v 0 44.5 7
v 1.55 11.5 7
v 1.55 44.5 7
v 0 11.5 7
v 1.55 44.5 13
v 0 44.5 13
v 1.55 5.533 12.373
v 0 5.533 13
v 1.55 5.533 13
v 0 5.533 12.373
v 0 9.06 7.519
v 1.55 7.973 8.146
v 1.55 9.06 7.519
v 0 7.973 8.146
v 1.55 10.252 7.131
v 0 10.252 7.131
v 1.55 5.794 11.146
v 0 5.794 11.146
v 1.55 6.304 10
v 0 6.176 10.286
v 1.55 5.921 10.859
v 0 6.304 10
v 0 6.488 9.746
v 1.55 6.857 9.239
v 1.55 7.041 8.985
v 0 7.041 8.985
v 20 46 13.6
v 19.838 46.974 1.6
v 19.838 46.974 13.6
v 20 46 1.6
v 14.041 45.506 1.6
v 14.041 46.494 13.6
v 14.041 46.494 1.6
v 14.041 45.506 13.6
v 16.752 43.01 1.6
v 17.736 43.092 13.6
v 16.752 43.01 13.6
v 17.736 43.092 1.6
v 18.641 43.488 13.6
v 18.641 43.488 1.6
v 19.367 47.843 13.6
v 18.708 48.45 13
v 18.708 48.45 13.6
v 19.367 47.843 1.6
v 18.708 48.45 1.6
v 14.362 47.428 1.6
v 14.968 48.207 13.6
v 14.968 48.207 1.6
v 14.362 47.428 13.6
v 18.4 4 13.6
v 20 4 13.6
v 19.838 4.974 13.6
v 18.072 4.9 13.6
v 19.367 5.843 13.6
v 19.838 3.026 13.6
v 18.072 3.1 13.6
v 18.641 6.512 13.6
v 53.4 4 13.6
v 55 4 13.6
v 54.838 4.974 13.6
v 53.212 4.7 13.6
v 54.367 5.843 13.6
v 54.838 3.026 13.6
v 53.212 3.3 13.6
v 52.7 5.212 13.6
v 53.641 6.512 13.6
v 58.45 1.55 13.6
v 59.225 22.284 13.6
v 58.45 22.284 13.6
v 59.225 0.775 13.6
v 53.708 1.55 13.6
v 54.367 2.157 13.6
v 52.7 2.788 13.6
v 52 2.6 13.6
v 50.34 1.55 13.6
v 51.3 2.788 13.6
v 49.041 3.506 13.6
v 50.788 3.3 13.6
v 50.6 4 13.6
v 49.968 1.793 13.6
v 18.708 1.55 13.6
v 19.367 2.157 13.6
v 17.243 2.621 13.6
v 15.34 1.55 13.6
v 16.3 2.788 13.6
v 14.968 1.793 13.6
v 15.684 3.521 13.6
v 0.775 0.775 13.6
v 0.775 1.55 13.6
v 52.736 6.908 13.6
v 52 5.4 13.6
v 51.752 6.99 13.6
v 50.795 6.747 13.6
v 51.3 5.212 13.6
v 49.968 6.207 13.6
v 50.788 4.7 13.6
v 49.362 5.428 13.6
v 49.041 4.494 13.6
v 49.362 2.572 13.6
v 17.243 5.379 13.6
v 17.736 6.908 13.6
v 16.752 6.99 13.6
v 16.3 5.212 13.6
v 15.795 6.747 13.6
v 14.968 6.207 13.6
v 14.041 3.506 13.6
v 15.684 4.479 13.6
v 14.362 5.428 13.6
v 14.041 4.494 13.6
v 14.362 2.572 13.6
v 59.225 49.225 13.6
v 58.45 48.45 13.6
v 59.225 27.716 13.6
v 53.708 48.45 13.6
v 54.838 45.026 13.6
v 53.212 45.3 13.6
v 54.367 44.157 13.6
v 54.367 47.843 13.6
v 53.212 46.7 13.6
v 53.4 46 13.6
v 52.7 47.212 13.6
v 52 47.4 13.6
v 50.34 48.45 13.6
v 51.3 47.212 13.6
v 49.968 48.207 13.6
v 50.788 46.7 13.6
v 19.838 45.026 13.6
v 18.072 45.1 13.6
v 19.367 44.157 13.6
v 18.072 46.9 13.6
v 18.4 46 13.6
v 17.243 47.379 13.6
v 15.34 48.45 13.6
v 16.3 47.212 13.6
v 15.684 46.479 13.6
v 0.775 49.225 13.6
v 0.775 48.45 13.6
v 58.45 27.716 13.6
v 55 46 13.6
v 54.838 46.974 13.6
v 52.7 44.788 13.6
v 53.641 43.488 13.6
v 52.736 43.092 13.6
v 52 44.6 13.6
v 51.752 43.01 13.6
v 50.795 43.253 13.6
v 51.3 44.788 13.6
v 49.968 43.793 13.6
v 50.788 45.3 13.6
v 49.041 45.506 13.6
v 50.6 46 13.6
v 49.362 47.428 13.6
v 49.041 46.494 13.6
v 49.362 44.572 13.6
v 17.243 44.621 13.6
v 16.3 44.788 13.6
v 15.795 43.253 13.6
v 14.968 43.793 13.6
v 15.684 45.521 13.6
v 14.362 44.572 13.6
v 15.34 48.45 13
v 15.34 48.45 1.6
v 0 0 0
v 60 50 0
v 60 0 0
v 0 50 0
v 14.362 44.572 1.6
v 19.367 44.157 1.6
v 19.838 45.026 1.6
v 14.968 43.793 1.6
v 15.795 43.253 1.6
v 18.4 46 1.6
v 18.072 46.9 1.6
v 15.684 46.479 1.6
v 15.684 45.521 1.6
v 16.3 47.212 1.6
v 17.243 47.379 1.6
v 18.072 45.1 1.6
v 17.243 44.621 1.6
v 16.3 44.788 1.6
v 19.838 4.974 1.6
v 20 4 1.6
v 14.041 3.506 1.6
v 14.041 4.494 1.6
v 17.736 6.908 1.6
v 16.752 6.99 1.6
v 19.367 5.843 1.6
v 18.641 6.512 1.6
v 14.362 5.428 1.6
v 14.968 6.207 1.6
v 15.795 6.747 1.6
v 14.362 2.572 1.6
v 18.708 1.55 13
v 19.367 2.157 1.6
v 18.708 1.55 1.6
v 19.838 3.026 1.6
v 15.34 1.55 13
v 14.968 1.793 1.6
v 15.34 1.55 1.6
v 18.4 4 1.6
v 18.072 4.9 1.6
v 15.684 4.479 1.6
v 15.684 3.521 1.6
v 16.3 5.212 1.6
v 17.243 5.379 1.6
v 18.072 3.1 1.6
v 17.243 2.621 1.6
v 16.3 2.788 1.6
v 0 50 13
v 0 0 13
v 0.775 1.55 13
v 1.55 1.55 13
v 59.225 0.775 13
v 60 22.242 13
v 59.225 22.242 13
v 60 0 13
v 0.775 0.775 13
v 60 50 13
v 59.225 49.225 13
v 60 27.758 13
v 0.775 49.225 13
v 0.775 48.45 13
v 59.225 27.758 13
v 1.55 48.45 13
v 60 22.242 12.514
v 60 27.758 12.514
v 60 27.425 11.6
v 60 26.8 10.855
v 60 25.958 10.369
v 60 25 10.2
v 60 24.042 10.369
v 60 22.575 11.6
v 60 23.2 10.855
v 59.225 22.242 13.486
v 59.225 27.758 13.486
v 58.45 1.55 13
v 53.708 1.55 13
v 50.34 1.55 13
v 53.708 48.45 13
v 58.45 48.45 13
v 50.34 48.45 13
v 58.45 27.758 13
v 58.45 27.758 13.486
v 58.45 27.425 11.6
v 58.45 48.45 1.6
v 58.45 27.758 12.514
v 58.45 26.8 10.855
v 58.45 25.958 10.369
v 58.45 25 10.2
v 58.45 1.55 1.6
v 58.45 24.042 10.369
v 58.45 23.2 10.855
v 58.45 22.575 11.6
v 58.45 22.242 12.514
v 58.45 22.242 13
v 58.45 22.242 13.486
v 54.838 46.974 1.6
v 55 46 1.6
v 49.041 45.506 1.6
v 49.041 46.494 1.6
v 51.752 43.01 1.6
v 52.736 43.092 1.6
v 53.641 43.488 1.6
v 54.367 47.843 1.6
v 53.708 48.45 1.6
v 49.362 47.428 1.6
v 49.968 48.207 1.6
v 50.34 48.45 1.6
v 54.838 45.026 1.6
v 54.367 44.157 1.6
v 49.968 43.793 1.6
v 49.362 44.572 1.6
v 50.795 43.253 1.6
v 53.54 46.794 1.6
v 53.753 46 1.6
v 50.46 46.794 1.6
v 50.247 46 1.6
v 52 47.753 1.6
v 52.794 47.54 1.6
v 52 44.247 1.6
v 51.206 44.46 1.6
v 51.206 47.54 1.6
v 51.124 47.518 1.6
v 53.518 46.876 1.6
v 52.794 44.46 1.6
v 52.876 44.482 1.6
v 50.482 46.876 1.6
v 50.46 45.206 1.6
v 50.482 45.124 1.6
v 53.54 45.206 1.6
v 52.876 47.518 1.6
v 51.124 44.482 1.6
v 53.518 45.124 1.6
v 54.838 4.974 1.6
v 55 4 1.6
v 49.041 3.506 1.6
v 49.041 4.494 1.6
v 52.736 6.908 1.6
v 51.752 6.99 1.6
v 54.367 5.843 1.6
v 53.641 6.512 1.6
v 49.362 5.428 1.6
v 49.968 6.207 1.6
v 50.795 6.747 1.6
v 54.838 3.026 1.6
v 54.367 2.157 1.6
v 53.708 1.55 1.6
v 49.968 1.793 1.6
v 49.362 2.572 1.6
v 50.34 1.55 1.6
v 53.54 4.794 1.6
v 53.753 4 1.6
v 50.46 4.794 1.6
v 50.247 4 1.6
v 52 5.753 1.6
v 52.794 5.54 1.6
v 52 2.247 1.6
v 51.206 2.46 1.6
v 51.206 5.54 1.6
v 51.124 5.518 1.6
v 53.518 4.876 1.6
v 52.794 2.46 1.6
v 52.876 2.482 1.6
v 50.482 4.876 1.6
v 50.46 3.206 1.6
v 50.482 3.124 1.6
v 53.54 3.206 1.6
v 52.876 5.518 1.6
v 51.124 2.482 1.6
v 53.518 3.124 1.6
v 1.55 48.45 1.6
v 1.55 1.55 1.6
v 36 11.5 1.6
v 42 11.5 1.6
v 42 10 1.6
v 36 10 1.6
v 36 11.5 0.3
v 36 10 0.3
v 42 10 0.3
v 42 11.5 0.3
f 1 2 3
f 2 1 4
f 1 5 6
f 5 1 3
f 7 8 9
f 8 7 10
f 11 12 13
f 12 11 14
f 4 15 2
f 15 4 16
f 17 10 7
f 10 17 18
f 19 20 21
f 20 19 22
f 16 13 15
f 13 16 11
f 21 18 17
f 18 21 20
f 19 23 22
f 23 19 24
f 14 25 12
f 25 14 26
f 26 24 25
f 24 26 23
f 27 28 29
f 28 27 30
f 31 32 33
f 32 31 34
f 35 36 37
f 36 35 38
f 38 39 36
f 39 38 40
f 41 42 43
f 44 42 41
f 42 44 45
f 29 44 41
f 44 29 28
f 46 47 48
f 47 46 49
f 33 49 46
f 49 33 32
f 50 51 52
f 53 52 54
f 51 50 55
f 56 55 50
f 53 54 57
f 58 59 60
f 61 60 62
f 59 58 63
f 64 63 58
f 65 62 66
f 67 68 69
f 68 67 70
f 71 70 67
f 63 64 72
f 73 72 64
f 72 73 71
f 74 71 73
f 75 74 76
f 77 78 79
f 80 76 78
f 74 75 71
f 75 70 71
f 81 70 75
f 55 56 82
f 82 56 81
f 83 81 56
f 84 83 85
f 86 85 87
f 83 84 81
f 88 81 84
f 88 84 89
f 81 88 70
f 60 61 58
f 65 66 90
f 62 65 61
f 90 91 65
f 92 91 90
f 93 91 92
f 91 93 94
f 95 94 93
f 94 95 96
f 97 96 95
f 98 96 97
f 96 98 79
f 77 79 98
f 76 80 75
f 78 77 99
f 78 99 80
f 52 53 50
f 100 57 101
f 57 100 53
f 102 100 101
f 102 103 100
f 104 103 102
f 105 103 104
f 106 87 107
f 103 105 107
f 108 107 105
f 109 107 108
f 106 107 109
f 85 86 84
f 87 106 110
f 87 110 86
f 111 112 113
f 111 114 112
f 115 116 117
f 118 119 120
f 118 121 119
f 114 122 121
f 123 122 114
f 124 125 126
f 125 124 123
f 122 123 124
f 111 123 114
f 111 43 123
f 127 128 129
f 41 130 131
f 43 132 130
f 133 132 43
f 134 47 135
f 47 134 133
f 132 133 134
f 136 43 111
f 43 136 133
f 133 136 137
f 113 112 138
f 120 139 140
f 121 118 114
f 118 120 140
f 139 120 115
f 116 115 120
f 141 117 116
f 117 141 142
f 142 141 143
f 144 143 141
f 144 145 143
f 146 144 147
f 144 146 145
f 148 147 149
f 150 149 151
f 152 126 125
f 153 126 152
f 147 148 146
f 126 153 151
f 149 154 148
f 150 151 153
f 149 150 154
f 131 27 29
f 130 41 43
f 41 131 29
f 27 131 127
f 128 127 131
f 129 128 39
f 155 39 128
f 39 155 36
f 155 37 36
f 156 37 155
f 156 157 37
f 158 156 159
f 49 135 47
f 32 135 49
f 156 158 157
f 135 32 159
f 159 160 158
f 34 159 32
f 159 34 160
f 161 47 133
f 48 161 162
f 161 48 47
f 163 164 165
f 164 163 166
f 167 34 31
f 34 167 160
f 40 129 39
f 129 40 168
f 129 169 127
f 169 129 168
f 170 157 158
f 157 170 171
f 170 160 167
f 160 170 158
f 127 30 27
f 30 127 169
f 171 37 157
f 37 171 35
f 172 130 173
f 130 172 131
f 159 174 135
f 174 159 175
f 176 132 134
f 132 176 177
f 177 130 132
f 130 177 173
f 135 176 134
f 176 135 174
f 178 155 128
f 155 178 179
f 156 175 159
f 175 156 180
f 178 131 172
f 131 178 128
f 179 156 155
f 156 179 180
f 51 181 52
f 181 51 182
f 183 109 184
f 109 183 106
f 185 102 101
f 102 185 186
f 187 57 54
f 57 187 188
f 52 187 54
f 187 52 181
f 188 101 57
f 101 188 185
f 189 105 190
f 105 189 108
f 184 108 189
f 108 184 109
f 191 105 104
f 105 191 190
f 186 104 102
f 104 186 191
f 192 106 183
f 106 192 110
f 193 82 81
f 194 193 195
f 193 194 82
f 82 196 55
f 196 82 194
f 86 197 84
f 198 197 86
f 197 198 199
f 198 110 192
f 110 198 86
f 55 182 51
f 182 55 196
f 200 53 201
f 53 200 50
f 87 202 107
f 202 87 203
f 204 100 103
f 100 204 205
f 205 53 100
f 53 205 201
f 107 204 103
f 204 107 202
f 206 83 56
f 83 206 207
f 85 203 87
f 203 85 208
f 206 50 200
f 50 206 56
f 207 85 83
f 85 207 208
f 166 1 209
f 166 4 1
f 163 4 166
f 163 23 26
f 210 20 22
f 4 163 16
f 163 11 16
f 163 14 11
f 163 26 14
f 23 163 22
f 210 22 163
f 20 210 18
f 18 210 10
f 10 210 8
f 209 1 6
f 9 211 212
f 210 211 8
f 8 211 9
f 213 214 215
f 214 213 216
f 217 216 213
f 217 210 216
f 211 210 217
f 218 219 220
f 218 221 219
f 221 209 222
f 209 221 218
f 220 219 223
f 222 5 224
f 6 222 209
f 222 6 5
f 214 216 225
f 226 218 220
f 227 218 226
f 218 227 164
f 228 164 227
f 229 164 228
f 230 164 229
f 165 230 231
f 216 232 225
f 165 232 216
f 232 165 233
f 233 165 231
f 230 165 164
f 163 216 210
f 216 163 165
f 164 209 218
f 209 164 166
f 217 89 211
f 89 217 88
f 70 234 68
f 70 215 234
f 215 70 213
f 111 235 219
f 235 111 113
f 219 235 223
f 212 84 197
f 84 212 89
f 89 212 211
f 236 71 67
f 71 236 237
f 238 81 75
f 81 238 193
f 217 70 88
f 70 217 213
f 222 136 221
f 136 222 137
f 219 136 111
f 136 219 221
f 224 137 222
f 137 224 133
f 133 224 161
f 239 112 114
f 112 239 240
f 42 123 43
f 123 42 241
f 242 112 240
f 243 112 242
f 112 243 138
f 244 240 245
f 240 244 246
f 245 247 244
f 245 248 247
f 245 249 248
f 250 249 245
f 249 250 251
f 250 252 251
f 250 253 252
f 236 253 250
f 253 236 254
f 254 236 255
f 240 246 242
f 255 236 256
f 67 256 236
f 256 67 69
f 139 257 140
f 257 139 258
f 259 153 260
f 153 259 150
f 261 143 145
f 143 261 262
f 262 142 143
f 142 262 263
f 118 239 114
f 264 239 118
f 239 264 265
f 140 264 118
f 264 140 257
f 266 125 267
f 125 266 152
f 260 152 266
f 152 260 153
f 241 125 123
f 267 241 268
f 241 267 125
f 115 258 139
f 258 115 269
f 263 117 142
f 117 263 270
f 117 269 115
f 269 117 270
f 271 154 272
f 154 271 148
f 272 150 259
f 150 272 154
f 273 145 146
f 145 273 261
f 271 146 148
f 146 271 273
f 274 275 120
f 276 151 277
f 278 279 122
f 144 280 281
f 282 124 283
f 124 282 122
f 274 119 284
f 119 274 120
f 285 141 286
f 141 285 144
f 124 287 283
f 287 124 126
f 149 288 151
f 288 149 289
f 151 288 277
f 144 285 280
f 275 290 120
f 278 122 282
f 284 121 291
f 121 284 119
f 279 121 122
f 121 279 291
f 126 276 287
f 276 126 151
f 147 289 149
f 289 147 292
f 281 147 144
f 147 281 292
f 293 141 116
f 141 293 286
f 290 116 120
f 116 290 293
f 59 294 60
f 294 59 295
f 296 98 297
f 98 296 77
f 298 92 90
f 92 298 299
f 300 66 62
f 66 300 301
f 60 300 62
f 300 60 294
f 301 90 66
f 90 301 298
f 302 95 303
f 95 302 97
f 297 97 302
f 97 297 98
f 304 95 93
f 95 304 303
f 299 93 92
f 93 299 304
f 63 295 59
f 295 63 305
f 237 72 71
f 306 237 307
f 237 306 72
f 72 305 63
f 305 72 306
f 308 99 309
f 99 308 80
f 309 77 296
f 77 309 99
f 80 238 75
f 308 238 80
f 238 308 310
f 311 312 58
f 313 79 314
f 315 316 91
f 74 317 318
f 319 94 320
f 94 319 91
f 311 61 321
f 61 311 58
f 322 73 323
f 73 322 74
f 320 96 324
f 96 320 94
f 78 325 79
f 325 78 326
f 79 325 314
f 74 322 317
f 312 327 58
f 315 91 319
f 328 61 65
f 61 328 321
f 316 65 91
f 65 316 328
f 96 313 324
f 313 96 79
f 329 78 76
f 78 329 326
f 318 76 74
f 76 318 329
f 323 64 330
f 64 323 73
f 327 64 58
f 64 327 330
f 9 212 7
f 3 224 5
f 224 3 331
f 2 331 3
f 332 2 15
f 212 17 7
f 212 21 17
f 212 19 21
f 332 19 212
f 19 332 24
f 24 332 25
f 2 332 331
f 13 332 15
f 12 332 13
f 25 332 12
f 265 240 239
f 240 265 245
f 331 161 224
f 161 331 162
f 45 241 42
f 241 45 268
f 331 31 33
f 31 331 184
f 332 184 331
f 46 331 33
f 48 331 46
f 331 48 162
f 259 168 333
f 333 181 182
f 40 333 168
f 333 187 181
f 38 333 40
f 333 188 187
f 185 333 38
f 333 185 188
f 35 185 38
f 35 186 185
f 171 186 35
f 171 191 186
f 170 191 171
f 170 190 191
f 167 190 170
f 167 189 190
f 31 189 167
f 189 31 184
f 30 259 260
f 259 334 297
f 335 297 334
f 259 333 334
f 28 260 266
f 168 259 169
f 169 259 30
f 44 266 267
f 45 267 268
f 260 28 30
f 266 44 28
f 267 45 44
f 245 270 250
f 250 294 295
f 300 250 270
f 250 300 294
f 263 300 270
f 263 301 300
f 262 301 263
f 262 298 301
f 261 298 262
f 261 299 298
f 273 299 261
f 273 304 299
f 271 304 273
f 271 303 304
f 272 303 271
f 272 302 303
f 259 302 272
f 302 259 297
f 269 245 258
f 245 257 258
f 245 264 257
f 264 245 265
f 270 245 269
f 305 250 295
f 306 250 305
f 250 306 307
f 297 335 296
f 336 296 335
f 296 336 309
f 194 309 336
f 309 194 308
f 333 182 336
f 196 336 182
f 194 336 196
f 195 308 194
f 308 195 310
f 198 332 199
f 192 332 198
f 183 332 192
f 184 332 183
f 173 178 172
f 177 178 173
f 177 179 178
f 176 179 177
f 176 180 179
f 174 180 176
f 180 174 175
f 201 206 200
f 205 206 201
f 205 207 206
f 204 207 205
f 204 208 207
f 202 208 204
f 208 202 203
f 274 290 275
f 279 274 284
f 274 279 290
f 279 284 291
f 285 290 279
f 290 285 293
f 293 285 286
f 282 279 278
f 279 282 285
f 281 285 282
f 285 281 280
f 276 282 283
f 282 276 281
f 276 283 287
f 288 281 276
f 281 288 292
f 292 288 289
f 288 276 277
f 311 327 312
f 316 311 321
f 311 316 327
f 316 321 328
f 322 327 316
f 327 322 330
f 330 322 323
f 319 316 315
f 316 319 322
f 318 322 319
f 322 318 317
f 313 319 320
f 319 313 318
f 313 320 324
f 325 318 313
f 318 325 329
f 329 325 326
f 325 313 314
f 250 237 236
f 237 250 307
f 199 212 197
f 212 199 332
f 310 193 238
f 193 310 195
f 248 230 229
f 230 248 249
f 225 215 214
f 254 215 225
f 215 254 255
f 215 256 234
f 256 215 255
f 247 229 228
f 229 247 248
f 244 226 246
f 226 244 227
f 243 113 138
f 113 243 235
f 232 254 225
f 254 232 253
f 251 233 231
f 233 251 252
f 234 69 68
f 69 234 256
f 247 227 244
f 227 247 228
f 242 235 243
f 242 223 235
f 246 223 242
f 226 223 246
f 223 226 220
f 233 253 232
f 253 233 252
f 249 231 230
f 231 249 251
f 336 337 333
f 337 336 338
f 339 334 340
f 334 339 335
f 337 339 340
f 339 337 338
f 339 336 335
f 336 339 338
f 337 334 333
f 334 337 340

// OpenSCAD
/* Snes 2 Neo Geo DB15 shell (top)
   (c) R.Edwards 2019
*/

cart_length=60; // 60
cart_width=50;
cart_height=13;
screw_sep = 39.5;
front_thickness = 1.6;
sides_thickness = 1.6 - 0.05;
rim_height = 0.6;
port_width = 39;
port_height = 12;
screw_radius = 3;
screw_from_edge = 1;

union() {
    difference() {
        // main shell
        union() {
            cube([cart_length, cart_width, cart_height]);
            // rim
            translate([sides_thickness/2, sides_thickness/2, cart_height])
                cube([cart_length-sides_thickness, sides_thickness/2, rim_height]);
            translate([sides_thickness/2, cart_width-sides_thickness, cart_height])
                cube([cart_length-sides_thickness, sides_thickness/2, rim_height]);
            translate([cart_length-sides_thickness, sides_thickness/2, cart_height])
                cube([sides_thickness/2, cart_width-sides_thickness, rim_height]);
        }
        // make hollow
        translate([sides_thickness, sides_thickness, front_thickness])
            cube([cart_length-sides_thickness*2,
                cart_width-sides_thickness*2,
                cart_height-front_thickness]);
        // cutout snes port
        translate([0, (cart_width - port_width)/2, cart_height - port_height/2])
            translate([-sides_thickness/2, port_height/2, 0])
                union() {
                    cube([sides_thickness*2, port_width-port_height/2, port_height]);
                    translate([0,0,port_height/2])
                        rotate([0,90,0])
                            cylinder(h = sides_thickness*2, r1 = port_height/2, r2 = port_height/2,  $fs = 1);
           }
        // cutout cable hole
        translate([cart_length-sides_thickness, cart_width/2, cart_height])
            rotate([0,90,0])
                cylinder(h = sides_thickness*2, r1 = 2.8, r2 = 2.8,  $fs = 1);
        // cutout led hole
        translate([36,10,0.3])
            cube([6, 1.5, front_thickness-0.3]);        
    }
    // screws
    translate([17, cart_width-screw_radius-screw_from_edge, 0])
        difference() {
            cylinder(h = cart_height+rim_height, r1 = screw_radius, r2 = screw_radius,  $fs = 1);
            cylinder(h = cart_height+rim_height, r1 = 1.4, r2 = 1.4,  $fs = 1);
        }
    translate([17, screw_radius+screw_from_edge, 0])
        difference() {
            cylinder(h = cart_height+rim_height, r1 = screw_radius, r2 = screw_radius,  $fs = 1);
            cylinder(h = cart_height+rim_height, r1 = 1.4, r2 = 1.4,  $fs = 1);
        }
    translate([52, cart_width-screw_radius-screw_from_edge, 0])
        difference() {
            cylinder(h = cart_height+rim_height, r1 = screw_radius, r2 = screw_radius,  $fs = 1);
            cylinder(h = cart_height+rim_height, r1 = 1.8, r2 = 1.4,  $fs = 1);
        }
    translate([52, screw_radius+screw_from_edge, 0])
        difference() {
            cylinder(h = cart_height+rim_height, r1 = screw_radius, r2 = screw_radius,  $fs = 1);
            cylinder(h = cart_height+rim_height, r1 = 1.8, r2 = 1.4,  $fs = 1);
        }

}
